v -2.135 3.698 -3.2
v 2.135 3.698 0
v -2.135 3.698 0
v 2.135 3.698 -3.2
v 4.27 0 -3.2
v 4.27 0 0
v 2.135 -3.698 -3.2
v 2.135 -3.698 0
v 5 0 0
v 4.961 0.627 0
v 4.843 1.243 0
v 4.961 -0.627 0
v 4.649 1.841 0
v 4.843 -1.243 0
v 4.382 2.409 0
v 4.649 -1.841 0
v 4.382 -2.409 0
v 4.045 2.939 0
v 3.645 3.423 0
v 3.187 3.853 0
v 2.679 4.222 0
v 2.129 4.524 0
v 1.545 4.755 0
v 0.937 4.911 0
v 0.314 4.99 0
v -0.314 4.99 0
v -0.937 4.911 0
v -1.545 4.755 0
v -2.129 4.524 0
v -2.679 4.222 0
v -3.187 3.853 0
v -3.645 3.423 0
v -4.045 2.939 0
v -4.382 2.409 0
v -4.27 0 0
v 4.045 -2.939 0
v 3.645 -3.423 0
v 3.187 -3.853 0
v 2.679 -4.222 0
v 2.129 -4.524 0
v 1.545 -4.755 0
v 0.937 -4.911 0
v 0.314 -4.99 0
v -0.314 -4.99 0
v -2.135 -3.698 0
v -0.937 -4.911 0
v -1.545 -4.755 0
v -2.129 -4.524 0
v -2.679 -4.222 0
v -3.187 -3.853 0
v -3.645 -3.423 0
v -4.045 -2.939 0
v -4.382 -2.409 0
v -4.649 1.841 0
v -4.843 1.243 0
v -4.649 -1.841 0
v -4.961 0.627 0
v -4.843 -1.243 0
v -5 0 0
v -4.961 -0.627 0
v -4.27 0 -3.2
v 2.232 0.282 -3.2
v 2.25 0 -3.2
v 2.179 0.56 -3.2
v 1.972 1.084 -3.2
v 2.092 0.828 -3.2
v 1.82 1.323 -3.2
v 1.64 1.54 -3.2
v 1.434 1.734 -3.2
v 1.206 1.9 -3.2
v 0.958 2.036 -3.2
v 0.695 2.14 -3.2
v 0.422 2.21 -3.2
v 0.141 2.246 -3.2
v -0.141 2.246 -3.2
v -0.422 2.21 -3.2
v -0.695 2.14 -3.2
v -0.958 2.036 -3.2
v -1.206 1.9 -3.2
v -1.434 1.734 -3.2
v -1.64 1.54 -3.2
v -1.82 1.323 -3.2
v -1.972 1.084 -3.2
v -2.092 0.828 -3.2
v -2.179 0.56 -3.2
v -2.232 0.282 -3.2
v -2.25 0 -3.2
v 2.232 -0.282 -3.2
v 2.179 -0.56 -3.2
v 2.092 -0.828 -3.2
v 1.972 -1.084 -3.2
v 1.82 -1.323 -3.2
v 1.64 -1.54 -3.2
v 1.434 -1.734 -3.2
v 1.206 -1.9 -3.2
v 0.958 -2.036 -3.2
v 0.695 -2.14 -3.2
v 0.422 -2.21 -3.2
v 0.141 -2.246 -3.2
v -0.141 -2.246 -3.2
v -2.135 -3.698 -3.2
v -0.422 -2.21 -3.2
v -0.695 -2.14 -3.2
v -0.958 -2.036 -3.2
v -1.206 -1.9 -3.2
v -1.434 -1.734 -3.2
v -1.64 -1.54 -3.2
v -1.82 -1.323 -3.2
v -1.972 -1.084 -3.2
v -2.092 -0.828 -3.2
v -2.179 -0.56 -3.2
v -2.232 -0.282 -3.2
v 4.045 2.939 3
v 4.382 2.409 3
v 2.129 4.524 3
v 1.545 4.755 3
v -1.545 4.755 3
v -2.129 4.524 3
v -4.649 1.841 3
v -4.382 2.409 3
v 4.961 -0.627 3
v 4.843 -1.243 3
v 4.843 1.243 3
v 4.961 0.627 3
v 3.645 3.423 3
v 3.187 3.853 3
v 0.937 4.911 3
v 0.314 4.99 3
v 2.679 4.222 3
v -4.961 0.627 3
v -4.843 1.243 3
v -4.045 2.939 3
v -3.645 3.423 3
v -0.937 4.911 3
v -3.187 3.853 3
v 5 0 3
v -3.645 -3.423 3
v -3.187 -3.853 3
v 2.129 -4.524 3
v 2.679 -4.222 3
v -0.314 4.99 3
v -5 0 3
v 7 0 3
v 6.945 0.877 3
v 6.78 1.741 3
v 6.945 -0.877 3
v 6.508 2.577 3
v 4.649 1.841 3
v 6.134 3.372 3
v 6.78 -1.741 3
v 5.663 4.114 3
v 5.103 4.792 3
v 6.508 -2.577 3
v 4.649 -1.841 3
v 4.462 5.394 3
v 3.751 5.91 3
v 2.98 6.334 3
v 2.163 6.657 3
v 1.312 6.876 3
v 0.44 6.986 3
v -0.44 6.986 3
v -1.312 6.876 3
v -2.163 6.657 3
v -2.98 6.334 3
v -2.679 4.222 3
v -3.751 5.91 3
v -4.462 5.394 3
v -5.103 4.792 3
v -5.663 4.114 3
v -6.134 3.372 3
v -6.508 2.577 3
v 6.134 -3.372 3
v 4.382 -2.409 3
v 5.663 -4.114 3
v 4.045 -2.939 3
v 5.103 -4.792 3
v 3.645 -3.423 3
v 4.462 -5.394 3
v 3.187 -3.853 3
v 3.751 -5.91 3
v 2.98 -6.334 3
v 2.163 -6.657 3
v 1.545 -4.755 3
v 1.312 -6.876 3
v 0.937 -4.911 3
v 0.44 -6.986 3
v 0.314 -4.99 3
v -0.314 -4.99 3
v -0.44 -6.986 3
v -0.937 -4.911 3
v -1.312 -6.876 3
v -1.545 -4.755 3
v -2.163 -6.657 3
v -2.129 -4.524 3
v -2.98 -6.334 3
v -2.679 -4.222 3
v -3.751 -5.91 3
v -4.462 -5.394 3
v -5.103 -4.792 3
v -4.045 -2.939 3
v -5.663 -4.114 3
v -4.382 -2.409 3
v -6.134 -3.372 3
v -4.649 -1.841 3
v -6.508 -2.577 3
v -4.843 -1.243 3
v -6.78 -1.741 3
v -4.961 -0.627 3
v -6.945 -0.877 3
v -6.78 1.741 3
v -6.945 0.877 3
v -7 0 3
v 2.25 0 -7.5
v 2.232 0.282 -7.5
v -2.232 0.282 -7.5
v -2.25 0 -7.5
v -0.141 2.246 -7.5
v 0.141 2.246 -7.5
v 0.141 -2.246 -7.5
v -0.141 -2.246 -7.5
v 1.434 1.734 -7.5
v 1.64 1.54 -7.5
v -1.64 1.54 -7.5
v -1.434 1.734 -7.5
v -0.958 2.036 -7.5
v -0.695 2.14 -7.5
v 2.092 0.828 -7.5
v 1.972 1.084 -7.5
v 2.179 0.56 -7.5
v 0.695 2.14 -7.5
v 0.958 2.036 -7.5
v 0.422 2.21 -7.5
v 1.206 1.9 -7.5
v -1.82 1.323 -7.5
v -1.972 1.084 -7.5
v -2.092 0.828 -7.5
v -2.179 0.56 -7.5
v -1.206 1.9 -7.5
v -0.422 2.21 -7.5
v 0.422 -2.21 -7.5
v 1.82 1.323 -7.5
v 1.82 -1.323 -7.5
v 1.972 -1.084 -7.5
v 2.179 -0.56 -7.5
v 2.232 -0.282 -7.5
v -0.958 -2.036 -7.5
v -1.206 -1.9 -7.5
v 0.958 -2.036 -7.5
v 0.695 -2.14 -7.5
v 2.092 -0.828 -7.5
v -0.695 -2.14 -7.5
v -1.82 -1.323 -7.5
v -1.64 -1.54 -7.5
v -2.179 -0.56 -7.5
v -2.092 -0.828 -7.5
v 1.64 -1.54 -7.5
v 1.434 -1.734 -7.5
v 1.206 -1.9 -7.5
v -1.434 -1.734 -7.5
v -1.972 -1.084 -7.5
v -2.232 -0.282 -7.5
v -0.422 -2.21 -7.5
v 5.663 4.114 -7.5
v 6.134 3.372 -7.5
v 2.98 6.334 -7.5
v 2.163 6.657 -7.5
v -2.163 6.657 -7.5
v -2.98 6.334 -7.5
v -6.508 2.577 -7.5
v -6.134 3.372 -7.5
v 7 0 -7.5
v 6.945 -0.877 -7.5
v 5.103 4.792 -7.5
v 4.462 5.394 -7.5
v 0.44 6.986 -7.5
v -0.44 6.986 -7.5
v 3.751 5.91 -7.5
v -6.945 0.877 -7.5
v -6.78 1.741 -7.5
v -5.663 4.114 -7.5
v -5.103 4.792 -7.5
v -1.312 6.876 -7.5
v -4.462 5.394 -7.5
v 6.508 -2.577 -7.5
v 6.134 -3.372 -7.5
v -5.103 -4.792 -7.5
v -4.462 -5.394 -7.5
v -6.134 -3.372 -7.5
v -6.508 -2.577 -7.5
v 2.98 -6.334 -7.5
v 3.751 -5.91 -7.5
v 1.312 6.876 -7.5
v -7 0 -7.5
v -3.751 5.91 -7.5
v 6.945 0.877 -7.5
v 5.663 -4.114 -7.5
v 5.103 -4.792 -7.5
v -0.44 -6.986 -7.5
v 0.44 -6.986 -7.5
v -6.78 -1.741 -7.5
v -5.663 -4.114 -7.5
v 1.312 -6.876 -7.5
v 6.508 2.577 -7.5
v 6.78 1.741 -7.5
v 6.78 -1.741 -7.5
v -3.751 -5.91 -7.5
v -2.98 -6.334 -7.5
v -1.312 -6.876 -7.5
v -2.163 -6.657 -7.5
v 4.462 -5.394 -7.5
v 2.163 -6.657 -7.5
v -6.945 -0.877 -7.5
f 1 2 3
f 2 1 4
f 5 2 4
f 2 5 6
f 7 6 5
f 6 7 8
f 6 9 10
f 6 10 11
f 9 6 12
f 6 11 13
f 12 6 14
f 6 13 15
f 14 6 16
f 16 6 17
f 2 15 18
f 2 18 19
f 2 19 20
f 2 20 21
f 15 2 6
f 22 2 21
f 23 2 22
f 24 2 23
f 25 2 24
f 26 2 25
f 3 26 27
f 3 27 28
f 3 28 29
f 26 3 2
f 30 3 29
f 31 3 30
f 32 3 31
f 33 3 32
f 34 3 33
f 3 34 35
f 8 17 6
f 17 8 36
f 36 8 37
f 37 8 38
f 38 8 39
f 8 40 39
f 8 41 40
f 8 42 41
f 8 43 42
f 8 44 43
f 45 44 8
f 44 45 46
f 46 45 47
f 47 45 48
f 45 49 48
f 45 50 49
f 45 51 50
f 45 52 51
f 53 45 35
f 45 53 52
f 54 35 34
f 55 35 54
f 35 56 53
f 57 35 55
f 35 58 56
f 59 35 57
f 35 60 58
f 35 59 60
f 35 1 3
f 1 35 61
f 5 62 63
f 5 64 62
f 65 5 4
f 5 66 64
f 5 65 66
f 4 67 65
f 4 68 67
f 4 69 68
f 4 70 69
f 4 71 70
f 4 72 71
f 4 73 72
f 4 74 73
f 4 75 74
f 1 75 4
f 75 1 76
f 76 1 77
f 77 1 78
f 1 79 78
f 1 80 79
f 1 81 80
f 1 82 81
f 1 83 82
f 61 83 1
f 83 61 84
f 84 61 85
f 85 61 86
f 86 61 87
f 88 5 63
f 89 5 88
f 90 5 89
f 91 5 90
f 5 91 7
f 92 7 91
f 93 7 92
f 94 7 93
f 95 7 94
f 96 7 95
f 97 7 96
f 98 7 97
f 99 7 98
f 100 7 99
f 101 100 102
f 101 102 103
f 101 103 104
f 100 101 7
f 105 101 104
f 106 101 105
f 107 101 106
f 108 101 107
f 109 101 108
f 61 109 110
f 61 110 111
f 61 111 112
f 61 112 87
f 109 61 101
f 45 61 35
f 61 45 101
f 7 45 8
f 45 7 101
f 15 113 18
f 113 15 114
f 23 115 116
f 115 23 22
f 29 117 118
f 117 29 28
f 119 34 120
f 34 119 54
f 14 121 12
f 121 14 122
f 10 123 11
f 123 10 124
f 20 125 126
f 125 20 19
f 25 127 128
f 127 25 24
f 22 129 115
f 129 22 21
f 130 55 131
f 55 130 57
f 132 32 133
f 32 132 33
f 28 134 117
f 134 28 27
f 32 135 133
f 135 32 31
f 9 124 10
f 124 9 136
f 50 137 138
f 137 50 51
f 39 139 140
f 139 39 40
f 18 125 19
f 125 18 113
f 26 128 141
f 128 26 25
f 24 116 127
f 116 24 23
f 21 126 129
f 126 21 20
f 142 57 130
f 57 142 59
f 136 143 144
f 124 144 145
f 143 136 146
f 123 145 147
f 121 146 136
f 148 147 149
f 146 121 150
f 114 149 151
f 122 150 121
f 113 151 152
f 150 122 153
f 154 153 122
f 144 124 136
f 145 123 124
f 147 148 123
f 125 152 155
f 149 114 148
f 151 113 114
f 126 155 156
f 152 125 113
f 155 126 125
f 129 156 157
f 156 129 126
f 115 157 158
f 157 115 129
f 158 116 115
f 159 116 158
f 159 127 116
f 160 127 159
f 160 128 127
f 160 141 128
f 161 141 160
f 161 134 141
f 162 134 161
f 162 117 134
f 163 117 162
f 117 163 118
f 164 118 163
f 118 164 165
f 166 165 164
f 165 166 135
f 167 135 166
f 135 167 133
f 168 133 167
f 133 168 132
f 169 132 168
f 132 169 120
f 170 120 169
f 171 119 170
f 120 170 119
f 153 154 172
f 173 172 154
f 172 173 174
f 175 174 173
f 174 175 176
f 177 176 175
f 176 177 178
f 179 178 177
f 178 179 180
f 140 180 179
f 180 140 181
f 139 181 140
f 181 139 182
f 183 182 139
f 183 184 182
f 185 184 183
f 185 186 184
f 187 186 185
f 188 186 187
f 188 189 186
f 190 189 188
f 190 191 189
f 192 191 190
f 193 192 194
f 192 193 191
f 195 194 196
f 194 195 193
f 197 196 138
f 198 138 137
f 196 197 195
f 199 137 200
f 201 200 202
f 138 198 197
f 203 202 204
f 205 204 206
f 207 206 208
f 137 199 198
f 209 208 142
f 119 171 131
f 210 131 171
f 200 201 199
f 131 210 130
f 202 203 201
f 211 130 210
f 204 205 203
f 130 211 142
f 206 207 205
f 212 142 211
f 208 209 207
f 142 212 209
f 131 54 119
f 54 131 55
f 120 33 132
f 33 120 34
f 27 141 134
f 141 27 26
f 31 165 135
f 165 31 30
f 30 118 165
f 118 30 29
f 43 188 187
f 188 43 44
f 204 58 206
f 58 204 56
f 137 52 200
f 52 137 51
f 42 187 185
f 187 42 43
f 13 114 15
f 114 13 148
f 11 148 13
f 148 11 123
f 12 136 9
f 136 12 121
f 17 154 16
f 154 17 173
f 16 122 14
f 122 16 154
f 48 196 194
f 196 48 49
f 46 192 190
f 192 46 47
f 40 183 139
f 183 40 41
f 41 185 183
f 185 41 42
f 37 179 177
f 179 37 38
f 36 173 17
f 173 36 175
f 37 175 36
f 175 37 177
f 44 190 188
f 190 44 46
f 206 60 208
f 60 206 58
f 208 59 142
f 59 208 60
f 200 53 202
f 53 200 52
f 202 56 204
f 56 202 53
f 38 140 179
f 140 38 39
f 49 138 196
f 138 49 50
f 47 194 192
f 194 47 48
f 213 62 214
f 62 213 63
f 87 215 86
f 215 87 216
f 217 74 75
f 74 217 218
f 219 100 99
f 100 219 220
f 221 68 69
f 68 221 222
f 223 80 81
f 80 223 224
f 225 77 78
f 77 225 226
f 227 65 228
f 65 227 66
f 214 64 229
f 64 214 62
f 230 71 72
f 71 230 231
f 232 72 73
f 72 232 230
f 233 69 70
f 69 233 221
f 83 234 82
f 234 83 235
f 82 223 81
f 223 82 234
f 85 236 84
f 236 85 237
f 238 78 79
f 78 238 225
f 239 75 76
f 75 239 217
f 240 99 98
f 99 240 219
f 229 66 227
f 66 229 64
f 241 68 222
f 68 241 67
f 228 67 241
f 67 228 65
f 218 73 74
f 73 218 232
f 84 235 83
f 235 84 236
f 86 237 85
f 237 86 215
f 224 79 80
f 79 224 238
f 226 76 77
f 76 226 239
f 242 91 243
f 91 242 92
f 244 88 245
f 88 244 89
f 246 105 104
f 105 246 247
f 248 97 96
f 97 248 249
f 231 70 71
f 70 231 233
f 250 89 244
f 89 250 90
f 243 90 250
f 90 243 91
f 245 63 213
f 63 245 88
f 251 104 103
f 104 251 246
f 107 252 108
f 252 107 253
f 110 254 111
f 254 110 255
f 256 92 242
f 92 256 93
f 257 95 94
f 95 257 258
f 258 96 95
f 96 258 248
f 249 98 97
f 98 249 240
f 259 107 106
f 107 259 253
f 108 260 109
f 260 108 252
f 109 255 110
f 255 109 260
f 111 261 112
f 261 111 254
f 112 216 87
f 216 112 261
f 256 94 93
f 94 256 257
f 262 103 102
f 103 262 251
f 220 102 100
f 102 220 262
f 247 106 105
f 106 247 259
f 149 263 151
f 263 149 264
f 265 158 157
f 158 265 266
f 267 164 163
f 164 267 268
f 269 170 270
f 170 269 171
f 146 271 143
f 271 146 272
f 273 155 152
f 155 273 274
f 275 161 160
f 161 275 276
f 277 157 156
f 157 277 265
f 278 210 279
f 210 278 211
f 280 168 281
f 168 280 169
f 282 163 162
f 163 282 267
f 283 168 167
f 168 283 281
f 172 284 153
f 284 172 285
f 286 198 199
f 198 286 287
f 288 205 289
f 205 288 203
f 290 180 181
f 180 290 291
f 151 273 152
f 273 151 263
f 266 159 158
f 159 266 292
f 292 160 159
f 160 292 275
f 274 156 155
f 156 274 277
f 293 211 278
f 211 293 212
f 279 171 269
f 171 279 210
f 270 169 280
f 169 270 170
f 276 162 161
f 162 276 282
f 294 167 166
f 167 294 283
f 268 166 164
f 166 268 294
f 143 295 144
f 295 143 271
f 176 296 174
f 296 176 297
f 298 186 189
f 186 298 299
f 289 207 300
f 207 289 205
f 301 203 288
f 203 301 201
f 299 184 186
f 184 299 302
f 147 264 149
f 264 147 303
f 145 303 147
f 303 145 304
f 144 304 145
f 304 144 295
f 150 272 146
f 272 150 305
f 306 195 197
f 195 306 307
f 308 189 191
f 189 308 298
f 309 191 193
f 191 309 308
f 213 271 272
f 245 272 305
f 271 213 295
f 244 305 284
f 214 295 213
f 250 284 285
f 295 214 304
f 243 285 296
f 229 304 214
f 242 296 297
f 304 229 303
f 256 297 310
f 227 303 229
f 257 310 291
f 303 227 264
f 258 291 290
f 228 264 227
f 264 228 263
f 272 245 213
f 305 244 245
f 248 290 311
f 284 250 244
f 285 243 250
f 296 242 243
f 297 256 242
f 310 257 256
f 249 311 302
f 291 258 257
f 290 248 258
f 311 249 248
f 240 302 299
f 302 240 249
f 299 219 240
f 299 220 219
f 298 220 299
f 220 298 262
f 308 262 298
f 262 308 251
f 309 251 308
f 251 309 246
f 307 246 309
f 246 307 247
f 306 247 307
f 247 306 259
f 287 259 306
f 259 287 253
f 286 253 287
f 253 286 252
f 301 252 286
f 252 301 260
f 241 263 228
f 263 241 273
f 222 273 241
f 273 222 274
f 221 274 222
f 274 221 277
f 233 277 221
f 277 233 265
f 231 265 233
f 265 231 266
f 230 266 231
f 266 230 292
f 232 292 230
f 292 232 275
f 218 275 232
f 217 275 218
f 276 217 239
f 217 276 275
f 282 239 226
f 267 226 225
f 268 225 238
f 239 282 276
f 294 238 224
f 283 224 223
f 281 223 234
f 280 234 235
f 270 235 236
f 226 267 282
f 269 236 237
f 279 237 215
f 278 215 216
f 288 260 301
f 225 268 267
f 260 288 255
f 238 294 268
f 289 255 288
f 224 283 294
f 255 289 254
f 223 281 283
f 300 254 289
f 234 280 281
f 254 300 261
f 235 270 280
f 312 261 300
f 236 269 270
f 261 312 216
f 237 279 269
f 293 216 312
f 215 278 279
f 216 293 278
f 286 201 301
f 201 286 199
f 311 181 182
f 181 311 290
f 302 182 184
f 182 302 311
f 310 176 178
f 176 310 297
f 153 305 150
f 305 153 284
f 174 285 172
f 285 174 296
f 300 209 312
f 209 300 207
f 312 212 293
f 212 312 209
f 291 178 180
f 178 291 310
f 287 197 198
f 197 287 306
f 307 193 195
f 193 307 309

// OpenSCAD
$fn = 50;


difference() {
	union() {
		translate(v = [0, 0, -7.5000000000]) {
			cylinder(h = 10.5000000000, r = 7.0000000000);
		}
	}
	union() {
		translate(v = [0, 0, 0]) {
			rotate(a = [0, 0, 0]) {
				difference() {
					union() {
						translate(v = [0, 0, -3.2000000000]) {
							linear_extrude(height = 3.2000000000) {
								polygon(points = [[4.2698000000, 0.0000000000], [2.1349000000, 3.6977552691], [-2.1349000000, 3.6977552691], [-4.2698000000, 0.0000000000], [-2.1349000000, -3.6977552691], [2.1349000000, -3.6977552691]]);
							}
						}
					}
					union();
				}
			}
		}
		#cylinder(h = 3, r = 5.0000000000);
		#translate(v = [0, 0, -100.0000000000]) {
			cylinder(h = 200, r = 2.2500000000);
		}
	}
}
